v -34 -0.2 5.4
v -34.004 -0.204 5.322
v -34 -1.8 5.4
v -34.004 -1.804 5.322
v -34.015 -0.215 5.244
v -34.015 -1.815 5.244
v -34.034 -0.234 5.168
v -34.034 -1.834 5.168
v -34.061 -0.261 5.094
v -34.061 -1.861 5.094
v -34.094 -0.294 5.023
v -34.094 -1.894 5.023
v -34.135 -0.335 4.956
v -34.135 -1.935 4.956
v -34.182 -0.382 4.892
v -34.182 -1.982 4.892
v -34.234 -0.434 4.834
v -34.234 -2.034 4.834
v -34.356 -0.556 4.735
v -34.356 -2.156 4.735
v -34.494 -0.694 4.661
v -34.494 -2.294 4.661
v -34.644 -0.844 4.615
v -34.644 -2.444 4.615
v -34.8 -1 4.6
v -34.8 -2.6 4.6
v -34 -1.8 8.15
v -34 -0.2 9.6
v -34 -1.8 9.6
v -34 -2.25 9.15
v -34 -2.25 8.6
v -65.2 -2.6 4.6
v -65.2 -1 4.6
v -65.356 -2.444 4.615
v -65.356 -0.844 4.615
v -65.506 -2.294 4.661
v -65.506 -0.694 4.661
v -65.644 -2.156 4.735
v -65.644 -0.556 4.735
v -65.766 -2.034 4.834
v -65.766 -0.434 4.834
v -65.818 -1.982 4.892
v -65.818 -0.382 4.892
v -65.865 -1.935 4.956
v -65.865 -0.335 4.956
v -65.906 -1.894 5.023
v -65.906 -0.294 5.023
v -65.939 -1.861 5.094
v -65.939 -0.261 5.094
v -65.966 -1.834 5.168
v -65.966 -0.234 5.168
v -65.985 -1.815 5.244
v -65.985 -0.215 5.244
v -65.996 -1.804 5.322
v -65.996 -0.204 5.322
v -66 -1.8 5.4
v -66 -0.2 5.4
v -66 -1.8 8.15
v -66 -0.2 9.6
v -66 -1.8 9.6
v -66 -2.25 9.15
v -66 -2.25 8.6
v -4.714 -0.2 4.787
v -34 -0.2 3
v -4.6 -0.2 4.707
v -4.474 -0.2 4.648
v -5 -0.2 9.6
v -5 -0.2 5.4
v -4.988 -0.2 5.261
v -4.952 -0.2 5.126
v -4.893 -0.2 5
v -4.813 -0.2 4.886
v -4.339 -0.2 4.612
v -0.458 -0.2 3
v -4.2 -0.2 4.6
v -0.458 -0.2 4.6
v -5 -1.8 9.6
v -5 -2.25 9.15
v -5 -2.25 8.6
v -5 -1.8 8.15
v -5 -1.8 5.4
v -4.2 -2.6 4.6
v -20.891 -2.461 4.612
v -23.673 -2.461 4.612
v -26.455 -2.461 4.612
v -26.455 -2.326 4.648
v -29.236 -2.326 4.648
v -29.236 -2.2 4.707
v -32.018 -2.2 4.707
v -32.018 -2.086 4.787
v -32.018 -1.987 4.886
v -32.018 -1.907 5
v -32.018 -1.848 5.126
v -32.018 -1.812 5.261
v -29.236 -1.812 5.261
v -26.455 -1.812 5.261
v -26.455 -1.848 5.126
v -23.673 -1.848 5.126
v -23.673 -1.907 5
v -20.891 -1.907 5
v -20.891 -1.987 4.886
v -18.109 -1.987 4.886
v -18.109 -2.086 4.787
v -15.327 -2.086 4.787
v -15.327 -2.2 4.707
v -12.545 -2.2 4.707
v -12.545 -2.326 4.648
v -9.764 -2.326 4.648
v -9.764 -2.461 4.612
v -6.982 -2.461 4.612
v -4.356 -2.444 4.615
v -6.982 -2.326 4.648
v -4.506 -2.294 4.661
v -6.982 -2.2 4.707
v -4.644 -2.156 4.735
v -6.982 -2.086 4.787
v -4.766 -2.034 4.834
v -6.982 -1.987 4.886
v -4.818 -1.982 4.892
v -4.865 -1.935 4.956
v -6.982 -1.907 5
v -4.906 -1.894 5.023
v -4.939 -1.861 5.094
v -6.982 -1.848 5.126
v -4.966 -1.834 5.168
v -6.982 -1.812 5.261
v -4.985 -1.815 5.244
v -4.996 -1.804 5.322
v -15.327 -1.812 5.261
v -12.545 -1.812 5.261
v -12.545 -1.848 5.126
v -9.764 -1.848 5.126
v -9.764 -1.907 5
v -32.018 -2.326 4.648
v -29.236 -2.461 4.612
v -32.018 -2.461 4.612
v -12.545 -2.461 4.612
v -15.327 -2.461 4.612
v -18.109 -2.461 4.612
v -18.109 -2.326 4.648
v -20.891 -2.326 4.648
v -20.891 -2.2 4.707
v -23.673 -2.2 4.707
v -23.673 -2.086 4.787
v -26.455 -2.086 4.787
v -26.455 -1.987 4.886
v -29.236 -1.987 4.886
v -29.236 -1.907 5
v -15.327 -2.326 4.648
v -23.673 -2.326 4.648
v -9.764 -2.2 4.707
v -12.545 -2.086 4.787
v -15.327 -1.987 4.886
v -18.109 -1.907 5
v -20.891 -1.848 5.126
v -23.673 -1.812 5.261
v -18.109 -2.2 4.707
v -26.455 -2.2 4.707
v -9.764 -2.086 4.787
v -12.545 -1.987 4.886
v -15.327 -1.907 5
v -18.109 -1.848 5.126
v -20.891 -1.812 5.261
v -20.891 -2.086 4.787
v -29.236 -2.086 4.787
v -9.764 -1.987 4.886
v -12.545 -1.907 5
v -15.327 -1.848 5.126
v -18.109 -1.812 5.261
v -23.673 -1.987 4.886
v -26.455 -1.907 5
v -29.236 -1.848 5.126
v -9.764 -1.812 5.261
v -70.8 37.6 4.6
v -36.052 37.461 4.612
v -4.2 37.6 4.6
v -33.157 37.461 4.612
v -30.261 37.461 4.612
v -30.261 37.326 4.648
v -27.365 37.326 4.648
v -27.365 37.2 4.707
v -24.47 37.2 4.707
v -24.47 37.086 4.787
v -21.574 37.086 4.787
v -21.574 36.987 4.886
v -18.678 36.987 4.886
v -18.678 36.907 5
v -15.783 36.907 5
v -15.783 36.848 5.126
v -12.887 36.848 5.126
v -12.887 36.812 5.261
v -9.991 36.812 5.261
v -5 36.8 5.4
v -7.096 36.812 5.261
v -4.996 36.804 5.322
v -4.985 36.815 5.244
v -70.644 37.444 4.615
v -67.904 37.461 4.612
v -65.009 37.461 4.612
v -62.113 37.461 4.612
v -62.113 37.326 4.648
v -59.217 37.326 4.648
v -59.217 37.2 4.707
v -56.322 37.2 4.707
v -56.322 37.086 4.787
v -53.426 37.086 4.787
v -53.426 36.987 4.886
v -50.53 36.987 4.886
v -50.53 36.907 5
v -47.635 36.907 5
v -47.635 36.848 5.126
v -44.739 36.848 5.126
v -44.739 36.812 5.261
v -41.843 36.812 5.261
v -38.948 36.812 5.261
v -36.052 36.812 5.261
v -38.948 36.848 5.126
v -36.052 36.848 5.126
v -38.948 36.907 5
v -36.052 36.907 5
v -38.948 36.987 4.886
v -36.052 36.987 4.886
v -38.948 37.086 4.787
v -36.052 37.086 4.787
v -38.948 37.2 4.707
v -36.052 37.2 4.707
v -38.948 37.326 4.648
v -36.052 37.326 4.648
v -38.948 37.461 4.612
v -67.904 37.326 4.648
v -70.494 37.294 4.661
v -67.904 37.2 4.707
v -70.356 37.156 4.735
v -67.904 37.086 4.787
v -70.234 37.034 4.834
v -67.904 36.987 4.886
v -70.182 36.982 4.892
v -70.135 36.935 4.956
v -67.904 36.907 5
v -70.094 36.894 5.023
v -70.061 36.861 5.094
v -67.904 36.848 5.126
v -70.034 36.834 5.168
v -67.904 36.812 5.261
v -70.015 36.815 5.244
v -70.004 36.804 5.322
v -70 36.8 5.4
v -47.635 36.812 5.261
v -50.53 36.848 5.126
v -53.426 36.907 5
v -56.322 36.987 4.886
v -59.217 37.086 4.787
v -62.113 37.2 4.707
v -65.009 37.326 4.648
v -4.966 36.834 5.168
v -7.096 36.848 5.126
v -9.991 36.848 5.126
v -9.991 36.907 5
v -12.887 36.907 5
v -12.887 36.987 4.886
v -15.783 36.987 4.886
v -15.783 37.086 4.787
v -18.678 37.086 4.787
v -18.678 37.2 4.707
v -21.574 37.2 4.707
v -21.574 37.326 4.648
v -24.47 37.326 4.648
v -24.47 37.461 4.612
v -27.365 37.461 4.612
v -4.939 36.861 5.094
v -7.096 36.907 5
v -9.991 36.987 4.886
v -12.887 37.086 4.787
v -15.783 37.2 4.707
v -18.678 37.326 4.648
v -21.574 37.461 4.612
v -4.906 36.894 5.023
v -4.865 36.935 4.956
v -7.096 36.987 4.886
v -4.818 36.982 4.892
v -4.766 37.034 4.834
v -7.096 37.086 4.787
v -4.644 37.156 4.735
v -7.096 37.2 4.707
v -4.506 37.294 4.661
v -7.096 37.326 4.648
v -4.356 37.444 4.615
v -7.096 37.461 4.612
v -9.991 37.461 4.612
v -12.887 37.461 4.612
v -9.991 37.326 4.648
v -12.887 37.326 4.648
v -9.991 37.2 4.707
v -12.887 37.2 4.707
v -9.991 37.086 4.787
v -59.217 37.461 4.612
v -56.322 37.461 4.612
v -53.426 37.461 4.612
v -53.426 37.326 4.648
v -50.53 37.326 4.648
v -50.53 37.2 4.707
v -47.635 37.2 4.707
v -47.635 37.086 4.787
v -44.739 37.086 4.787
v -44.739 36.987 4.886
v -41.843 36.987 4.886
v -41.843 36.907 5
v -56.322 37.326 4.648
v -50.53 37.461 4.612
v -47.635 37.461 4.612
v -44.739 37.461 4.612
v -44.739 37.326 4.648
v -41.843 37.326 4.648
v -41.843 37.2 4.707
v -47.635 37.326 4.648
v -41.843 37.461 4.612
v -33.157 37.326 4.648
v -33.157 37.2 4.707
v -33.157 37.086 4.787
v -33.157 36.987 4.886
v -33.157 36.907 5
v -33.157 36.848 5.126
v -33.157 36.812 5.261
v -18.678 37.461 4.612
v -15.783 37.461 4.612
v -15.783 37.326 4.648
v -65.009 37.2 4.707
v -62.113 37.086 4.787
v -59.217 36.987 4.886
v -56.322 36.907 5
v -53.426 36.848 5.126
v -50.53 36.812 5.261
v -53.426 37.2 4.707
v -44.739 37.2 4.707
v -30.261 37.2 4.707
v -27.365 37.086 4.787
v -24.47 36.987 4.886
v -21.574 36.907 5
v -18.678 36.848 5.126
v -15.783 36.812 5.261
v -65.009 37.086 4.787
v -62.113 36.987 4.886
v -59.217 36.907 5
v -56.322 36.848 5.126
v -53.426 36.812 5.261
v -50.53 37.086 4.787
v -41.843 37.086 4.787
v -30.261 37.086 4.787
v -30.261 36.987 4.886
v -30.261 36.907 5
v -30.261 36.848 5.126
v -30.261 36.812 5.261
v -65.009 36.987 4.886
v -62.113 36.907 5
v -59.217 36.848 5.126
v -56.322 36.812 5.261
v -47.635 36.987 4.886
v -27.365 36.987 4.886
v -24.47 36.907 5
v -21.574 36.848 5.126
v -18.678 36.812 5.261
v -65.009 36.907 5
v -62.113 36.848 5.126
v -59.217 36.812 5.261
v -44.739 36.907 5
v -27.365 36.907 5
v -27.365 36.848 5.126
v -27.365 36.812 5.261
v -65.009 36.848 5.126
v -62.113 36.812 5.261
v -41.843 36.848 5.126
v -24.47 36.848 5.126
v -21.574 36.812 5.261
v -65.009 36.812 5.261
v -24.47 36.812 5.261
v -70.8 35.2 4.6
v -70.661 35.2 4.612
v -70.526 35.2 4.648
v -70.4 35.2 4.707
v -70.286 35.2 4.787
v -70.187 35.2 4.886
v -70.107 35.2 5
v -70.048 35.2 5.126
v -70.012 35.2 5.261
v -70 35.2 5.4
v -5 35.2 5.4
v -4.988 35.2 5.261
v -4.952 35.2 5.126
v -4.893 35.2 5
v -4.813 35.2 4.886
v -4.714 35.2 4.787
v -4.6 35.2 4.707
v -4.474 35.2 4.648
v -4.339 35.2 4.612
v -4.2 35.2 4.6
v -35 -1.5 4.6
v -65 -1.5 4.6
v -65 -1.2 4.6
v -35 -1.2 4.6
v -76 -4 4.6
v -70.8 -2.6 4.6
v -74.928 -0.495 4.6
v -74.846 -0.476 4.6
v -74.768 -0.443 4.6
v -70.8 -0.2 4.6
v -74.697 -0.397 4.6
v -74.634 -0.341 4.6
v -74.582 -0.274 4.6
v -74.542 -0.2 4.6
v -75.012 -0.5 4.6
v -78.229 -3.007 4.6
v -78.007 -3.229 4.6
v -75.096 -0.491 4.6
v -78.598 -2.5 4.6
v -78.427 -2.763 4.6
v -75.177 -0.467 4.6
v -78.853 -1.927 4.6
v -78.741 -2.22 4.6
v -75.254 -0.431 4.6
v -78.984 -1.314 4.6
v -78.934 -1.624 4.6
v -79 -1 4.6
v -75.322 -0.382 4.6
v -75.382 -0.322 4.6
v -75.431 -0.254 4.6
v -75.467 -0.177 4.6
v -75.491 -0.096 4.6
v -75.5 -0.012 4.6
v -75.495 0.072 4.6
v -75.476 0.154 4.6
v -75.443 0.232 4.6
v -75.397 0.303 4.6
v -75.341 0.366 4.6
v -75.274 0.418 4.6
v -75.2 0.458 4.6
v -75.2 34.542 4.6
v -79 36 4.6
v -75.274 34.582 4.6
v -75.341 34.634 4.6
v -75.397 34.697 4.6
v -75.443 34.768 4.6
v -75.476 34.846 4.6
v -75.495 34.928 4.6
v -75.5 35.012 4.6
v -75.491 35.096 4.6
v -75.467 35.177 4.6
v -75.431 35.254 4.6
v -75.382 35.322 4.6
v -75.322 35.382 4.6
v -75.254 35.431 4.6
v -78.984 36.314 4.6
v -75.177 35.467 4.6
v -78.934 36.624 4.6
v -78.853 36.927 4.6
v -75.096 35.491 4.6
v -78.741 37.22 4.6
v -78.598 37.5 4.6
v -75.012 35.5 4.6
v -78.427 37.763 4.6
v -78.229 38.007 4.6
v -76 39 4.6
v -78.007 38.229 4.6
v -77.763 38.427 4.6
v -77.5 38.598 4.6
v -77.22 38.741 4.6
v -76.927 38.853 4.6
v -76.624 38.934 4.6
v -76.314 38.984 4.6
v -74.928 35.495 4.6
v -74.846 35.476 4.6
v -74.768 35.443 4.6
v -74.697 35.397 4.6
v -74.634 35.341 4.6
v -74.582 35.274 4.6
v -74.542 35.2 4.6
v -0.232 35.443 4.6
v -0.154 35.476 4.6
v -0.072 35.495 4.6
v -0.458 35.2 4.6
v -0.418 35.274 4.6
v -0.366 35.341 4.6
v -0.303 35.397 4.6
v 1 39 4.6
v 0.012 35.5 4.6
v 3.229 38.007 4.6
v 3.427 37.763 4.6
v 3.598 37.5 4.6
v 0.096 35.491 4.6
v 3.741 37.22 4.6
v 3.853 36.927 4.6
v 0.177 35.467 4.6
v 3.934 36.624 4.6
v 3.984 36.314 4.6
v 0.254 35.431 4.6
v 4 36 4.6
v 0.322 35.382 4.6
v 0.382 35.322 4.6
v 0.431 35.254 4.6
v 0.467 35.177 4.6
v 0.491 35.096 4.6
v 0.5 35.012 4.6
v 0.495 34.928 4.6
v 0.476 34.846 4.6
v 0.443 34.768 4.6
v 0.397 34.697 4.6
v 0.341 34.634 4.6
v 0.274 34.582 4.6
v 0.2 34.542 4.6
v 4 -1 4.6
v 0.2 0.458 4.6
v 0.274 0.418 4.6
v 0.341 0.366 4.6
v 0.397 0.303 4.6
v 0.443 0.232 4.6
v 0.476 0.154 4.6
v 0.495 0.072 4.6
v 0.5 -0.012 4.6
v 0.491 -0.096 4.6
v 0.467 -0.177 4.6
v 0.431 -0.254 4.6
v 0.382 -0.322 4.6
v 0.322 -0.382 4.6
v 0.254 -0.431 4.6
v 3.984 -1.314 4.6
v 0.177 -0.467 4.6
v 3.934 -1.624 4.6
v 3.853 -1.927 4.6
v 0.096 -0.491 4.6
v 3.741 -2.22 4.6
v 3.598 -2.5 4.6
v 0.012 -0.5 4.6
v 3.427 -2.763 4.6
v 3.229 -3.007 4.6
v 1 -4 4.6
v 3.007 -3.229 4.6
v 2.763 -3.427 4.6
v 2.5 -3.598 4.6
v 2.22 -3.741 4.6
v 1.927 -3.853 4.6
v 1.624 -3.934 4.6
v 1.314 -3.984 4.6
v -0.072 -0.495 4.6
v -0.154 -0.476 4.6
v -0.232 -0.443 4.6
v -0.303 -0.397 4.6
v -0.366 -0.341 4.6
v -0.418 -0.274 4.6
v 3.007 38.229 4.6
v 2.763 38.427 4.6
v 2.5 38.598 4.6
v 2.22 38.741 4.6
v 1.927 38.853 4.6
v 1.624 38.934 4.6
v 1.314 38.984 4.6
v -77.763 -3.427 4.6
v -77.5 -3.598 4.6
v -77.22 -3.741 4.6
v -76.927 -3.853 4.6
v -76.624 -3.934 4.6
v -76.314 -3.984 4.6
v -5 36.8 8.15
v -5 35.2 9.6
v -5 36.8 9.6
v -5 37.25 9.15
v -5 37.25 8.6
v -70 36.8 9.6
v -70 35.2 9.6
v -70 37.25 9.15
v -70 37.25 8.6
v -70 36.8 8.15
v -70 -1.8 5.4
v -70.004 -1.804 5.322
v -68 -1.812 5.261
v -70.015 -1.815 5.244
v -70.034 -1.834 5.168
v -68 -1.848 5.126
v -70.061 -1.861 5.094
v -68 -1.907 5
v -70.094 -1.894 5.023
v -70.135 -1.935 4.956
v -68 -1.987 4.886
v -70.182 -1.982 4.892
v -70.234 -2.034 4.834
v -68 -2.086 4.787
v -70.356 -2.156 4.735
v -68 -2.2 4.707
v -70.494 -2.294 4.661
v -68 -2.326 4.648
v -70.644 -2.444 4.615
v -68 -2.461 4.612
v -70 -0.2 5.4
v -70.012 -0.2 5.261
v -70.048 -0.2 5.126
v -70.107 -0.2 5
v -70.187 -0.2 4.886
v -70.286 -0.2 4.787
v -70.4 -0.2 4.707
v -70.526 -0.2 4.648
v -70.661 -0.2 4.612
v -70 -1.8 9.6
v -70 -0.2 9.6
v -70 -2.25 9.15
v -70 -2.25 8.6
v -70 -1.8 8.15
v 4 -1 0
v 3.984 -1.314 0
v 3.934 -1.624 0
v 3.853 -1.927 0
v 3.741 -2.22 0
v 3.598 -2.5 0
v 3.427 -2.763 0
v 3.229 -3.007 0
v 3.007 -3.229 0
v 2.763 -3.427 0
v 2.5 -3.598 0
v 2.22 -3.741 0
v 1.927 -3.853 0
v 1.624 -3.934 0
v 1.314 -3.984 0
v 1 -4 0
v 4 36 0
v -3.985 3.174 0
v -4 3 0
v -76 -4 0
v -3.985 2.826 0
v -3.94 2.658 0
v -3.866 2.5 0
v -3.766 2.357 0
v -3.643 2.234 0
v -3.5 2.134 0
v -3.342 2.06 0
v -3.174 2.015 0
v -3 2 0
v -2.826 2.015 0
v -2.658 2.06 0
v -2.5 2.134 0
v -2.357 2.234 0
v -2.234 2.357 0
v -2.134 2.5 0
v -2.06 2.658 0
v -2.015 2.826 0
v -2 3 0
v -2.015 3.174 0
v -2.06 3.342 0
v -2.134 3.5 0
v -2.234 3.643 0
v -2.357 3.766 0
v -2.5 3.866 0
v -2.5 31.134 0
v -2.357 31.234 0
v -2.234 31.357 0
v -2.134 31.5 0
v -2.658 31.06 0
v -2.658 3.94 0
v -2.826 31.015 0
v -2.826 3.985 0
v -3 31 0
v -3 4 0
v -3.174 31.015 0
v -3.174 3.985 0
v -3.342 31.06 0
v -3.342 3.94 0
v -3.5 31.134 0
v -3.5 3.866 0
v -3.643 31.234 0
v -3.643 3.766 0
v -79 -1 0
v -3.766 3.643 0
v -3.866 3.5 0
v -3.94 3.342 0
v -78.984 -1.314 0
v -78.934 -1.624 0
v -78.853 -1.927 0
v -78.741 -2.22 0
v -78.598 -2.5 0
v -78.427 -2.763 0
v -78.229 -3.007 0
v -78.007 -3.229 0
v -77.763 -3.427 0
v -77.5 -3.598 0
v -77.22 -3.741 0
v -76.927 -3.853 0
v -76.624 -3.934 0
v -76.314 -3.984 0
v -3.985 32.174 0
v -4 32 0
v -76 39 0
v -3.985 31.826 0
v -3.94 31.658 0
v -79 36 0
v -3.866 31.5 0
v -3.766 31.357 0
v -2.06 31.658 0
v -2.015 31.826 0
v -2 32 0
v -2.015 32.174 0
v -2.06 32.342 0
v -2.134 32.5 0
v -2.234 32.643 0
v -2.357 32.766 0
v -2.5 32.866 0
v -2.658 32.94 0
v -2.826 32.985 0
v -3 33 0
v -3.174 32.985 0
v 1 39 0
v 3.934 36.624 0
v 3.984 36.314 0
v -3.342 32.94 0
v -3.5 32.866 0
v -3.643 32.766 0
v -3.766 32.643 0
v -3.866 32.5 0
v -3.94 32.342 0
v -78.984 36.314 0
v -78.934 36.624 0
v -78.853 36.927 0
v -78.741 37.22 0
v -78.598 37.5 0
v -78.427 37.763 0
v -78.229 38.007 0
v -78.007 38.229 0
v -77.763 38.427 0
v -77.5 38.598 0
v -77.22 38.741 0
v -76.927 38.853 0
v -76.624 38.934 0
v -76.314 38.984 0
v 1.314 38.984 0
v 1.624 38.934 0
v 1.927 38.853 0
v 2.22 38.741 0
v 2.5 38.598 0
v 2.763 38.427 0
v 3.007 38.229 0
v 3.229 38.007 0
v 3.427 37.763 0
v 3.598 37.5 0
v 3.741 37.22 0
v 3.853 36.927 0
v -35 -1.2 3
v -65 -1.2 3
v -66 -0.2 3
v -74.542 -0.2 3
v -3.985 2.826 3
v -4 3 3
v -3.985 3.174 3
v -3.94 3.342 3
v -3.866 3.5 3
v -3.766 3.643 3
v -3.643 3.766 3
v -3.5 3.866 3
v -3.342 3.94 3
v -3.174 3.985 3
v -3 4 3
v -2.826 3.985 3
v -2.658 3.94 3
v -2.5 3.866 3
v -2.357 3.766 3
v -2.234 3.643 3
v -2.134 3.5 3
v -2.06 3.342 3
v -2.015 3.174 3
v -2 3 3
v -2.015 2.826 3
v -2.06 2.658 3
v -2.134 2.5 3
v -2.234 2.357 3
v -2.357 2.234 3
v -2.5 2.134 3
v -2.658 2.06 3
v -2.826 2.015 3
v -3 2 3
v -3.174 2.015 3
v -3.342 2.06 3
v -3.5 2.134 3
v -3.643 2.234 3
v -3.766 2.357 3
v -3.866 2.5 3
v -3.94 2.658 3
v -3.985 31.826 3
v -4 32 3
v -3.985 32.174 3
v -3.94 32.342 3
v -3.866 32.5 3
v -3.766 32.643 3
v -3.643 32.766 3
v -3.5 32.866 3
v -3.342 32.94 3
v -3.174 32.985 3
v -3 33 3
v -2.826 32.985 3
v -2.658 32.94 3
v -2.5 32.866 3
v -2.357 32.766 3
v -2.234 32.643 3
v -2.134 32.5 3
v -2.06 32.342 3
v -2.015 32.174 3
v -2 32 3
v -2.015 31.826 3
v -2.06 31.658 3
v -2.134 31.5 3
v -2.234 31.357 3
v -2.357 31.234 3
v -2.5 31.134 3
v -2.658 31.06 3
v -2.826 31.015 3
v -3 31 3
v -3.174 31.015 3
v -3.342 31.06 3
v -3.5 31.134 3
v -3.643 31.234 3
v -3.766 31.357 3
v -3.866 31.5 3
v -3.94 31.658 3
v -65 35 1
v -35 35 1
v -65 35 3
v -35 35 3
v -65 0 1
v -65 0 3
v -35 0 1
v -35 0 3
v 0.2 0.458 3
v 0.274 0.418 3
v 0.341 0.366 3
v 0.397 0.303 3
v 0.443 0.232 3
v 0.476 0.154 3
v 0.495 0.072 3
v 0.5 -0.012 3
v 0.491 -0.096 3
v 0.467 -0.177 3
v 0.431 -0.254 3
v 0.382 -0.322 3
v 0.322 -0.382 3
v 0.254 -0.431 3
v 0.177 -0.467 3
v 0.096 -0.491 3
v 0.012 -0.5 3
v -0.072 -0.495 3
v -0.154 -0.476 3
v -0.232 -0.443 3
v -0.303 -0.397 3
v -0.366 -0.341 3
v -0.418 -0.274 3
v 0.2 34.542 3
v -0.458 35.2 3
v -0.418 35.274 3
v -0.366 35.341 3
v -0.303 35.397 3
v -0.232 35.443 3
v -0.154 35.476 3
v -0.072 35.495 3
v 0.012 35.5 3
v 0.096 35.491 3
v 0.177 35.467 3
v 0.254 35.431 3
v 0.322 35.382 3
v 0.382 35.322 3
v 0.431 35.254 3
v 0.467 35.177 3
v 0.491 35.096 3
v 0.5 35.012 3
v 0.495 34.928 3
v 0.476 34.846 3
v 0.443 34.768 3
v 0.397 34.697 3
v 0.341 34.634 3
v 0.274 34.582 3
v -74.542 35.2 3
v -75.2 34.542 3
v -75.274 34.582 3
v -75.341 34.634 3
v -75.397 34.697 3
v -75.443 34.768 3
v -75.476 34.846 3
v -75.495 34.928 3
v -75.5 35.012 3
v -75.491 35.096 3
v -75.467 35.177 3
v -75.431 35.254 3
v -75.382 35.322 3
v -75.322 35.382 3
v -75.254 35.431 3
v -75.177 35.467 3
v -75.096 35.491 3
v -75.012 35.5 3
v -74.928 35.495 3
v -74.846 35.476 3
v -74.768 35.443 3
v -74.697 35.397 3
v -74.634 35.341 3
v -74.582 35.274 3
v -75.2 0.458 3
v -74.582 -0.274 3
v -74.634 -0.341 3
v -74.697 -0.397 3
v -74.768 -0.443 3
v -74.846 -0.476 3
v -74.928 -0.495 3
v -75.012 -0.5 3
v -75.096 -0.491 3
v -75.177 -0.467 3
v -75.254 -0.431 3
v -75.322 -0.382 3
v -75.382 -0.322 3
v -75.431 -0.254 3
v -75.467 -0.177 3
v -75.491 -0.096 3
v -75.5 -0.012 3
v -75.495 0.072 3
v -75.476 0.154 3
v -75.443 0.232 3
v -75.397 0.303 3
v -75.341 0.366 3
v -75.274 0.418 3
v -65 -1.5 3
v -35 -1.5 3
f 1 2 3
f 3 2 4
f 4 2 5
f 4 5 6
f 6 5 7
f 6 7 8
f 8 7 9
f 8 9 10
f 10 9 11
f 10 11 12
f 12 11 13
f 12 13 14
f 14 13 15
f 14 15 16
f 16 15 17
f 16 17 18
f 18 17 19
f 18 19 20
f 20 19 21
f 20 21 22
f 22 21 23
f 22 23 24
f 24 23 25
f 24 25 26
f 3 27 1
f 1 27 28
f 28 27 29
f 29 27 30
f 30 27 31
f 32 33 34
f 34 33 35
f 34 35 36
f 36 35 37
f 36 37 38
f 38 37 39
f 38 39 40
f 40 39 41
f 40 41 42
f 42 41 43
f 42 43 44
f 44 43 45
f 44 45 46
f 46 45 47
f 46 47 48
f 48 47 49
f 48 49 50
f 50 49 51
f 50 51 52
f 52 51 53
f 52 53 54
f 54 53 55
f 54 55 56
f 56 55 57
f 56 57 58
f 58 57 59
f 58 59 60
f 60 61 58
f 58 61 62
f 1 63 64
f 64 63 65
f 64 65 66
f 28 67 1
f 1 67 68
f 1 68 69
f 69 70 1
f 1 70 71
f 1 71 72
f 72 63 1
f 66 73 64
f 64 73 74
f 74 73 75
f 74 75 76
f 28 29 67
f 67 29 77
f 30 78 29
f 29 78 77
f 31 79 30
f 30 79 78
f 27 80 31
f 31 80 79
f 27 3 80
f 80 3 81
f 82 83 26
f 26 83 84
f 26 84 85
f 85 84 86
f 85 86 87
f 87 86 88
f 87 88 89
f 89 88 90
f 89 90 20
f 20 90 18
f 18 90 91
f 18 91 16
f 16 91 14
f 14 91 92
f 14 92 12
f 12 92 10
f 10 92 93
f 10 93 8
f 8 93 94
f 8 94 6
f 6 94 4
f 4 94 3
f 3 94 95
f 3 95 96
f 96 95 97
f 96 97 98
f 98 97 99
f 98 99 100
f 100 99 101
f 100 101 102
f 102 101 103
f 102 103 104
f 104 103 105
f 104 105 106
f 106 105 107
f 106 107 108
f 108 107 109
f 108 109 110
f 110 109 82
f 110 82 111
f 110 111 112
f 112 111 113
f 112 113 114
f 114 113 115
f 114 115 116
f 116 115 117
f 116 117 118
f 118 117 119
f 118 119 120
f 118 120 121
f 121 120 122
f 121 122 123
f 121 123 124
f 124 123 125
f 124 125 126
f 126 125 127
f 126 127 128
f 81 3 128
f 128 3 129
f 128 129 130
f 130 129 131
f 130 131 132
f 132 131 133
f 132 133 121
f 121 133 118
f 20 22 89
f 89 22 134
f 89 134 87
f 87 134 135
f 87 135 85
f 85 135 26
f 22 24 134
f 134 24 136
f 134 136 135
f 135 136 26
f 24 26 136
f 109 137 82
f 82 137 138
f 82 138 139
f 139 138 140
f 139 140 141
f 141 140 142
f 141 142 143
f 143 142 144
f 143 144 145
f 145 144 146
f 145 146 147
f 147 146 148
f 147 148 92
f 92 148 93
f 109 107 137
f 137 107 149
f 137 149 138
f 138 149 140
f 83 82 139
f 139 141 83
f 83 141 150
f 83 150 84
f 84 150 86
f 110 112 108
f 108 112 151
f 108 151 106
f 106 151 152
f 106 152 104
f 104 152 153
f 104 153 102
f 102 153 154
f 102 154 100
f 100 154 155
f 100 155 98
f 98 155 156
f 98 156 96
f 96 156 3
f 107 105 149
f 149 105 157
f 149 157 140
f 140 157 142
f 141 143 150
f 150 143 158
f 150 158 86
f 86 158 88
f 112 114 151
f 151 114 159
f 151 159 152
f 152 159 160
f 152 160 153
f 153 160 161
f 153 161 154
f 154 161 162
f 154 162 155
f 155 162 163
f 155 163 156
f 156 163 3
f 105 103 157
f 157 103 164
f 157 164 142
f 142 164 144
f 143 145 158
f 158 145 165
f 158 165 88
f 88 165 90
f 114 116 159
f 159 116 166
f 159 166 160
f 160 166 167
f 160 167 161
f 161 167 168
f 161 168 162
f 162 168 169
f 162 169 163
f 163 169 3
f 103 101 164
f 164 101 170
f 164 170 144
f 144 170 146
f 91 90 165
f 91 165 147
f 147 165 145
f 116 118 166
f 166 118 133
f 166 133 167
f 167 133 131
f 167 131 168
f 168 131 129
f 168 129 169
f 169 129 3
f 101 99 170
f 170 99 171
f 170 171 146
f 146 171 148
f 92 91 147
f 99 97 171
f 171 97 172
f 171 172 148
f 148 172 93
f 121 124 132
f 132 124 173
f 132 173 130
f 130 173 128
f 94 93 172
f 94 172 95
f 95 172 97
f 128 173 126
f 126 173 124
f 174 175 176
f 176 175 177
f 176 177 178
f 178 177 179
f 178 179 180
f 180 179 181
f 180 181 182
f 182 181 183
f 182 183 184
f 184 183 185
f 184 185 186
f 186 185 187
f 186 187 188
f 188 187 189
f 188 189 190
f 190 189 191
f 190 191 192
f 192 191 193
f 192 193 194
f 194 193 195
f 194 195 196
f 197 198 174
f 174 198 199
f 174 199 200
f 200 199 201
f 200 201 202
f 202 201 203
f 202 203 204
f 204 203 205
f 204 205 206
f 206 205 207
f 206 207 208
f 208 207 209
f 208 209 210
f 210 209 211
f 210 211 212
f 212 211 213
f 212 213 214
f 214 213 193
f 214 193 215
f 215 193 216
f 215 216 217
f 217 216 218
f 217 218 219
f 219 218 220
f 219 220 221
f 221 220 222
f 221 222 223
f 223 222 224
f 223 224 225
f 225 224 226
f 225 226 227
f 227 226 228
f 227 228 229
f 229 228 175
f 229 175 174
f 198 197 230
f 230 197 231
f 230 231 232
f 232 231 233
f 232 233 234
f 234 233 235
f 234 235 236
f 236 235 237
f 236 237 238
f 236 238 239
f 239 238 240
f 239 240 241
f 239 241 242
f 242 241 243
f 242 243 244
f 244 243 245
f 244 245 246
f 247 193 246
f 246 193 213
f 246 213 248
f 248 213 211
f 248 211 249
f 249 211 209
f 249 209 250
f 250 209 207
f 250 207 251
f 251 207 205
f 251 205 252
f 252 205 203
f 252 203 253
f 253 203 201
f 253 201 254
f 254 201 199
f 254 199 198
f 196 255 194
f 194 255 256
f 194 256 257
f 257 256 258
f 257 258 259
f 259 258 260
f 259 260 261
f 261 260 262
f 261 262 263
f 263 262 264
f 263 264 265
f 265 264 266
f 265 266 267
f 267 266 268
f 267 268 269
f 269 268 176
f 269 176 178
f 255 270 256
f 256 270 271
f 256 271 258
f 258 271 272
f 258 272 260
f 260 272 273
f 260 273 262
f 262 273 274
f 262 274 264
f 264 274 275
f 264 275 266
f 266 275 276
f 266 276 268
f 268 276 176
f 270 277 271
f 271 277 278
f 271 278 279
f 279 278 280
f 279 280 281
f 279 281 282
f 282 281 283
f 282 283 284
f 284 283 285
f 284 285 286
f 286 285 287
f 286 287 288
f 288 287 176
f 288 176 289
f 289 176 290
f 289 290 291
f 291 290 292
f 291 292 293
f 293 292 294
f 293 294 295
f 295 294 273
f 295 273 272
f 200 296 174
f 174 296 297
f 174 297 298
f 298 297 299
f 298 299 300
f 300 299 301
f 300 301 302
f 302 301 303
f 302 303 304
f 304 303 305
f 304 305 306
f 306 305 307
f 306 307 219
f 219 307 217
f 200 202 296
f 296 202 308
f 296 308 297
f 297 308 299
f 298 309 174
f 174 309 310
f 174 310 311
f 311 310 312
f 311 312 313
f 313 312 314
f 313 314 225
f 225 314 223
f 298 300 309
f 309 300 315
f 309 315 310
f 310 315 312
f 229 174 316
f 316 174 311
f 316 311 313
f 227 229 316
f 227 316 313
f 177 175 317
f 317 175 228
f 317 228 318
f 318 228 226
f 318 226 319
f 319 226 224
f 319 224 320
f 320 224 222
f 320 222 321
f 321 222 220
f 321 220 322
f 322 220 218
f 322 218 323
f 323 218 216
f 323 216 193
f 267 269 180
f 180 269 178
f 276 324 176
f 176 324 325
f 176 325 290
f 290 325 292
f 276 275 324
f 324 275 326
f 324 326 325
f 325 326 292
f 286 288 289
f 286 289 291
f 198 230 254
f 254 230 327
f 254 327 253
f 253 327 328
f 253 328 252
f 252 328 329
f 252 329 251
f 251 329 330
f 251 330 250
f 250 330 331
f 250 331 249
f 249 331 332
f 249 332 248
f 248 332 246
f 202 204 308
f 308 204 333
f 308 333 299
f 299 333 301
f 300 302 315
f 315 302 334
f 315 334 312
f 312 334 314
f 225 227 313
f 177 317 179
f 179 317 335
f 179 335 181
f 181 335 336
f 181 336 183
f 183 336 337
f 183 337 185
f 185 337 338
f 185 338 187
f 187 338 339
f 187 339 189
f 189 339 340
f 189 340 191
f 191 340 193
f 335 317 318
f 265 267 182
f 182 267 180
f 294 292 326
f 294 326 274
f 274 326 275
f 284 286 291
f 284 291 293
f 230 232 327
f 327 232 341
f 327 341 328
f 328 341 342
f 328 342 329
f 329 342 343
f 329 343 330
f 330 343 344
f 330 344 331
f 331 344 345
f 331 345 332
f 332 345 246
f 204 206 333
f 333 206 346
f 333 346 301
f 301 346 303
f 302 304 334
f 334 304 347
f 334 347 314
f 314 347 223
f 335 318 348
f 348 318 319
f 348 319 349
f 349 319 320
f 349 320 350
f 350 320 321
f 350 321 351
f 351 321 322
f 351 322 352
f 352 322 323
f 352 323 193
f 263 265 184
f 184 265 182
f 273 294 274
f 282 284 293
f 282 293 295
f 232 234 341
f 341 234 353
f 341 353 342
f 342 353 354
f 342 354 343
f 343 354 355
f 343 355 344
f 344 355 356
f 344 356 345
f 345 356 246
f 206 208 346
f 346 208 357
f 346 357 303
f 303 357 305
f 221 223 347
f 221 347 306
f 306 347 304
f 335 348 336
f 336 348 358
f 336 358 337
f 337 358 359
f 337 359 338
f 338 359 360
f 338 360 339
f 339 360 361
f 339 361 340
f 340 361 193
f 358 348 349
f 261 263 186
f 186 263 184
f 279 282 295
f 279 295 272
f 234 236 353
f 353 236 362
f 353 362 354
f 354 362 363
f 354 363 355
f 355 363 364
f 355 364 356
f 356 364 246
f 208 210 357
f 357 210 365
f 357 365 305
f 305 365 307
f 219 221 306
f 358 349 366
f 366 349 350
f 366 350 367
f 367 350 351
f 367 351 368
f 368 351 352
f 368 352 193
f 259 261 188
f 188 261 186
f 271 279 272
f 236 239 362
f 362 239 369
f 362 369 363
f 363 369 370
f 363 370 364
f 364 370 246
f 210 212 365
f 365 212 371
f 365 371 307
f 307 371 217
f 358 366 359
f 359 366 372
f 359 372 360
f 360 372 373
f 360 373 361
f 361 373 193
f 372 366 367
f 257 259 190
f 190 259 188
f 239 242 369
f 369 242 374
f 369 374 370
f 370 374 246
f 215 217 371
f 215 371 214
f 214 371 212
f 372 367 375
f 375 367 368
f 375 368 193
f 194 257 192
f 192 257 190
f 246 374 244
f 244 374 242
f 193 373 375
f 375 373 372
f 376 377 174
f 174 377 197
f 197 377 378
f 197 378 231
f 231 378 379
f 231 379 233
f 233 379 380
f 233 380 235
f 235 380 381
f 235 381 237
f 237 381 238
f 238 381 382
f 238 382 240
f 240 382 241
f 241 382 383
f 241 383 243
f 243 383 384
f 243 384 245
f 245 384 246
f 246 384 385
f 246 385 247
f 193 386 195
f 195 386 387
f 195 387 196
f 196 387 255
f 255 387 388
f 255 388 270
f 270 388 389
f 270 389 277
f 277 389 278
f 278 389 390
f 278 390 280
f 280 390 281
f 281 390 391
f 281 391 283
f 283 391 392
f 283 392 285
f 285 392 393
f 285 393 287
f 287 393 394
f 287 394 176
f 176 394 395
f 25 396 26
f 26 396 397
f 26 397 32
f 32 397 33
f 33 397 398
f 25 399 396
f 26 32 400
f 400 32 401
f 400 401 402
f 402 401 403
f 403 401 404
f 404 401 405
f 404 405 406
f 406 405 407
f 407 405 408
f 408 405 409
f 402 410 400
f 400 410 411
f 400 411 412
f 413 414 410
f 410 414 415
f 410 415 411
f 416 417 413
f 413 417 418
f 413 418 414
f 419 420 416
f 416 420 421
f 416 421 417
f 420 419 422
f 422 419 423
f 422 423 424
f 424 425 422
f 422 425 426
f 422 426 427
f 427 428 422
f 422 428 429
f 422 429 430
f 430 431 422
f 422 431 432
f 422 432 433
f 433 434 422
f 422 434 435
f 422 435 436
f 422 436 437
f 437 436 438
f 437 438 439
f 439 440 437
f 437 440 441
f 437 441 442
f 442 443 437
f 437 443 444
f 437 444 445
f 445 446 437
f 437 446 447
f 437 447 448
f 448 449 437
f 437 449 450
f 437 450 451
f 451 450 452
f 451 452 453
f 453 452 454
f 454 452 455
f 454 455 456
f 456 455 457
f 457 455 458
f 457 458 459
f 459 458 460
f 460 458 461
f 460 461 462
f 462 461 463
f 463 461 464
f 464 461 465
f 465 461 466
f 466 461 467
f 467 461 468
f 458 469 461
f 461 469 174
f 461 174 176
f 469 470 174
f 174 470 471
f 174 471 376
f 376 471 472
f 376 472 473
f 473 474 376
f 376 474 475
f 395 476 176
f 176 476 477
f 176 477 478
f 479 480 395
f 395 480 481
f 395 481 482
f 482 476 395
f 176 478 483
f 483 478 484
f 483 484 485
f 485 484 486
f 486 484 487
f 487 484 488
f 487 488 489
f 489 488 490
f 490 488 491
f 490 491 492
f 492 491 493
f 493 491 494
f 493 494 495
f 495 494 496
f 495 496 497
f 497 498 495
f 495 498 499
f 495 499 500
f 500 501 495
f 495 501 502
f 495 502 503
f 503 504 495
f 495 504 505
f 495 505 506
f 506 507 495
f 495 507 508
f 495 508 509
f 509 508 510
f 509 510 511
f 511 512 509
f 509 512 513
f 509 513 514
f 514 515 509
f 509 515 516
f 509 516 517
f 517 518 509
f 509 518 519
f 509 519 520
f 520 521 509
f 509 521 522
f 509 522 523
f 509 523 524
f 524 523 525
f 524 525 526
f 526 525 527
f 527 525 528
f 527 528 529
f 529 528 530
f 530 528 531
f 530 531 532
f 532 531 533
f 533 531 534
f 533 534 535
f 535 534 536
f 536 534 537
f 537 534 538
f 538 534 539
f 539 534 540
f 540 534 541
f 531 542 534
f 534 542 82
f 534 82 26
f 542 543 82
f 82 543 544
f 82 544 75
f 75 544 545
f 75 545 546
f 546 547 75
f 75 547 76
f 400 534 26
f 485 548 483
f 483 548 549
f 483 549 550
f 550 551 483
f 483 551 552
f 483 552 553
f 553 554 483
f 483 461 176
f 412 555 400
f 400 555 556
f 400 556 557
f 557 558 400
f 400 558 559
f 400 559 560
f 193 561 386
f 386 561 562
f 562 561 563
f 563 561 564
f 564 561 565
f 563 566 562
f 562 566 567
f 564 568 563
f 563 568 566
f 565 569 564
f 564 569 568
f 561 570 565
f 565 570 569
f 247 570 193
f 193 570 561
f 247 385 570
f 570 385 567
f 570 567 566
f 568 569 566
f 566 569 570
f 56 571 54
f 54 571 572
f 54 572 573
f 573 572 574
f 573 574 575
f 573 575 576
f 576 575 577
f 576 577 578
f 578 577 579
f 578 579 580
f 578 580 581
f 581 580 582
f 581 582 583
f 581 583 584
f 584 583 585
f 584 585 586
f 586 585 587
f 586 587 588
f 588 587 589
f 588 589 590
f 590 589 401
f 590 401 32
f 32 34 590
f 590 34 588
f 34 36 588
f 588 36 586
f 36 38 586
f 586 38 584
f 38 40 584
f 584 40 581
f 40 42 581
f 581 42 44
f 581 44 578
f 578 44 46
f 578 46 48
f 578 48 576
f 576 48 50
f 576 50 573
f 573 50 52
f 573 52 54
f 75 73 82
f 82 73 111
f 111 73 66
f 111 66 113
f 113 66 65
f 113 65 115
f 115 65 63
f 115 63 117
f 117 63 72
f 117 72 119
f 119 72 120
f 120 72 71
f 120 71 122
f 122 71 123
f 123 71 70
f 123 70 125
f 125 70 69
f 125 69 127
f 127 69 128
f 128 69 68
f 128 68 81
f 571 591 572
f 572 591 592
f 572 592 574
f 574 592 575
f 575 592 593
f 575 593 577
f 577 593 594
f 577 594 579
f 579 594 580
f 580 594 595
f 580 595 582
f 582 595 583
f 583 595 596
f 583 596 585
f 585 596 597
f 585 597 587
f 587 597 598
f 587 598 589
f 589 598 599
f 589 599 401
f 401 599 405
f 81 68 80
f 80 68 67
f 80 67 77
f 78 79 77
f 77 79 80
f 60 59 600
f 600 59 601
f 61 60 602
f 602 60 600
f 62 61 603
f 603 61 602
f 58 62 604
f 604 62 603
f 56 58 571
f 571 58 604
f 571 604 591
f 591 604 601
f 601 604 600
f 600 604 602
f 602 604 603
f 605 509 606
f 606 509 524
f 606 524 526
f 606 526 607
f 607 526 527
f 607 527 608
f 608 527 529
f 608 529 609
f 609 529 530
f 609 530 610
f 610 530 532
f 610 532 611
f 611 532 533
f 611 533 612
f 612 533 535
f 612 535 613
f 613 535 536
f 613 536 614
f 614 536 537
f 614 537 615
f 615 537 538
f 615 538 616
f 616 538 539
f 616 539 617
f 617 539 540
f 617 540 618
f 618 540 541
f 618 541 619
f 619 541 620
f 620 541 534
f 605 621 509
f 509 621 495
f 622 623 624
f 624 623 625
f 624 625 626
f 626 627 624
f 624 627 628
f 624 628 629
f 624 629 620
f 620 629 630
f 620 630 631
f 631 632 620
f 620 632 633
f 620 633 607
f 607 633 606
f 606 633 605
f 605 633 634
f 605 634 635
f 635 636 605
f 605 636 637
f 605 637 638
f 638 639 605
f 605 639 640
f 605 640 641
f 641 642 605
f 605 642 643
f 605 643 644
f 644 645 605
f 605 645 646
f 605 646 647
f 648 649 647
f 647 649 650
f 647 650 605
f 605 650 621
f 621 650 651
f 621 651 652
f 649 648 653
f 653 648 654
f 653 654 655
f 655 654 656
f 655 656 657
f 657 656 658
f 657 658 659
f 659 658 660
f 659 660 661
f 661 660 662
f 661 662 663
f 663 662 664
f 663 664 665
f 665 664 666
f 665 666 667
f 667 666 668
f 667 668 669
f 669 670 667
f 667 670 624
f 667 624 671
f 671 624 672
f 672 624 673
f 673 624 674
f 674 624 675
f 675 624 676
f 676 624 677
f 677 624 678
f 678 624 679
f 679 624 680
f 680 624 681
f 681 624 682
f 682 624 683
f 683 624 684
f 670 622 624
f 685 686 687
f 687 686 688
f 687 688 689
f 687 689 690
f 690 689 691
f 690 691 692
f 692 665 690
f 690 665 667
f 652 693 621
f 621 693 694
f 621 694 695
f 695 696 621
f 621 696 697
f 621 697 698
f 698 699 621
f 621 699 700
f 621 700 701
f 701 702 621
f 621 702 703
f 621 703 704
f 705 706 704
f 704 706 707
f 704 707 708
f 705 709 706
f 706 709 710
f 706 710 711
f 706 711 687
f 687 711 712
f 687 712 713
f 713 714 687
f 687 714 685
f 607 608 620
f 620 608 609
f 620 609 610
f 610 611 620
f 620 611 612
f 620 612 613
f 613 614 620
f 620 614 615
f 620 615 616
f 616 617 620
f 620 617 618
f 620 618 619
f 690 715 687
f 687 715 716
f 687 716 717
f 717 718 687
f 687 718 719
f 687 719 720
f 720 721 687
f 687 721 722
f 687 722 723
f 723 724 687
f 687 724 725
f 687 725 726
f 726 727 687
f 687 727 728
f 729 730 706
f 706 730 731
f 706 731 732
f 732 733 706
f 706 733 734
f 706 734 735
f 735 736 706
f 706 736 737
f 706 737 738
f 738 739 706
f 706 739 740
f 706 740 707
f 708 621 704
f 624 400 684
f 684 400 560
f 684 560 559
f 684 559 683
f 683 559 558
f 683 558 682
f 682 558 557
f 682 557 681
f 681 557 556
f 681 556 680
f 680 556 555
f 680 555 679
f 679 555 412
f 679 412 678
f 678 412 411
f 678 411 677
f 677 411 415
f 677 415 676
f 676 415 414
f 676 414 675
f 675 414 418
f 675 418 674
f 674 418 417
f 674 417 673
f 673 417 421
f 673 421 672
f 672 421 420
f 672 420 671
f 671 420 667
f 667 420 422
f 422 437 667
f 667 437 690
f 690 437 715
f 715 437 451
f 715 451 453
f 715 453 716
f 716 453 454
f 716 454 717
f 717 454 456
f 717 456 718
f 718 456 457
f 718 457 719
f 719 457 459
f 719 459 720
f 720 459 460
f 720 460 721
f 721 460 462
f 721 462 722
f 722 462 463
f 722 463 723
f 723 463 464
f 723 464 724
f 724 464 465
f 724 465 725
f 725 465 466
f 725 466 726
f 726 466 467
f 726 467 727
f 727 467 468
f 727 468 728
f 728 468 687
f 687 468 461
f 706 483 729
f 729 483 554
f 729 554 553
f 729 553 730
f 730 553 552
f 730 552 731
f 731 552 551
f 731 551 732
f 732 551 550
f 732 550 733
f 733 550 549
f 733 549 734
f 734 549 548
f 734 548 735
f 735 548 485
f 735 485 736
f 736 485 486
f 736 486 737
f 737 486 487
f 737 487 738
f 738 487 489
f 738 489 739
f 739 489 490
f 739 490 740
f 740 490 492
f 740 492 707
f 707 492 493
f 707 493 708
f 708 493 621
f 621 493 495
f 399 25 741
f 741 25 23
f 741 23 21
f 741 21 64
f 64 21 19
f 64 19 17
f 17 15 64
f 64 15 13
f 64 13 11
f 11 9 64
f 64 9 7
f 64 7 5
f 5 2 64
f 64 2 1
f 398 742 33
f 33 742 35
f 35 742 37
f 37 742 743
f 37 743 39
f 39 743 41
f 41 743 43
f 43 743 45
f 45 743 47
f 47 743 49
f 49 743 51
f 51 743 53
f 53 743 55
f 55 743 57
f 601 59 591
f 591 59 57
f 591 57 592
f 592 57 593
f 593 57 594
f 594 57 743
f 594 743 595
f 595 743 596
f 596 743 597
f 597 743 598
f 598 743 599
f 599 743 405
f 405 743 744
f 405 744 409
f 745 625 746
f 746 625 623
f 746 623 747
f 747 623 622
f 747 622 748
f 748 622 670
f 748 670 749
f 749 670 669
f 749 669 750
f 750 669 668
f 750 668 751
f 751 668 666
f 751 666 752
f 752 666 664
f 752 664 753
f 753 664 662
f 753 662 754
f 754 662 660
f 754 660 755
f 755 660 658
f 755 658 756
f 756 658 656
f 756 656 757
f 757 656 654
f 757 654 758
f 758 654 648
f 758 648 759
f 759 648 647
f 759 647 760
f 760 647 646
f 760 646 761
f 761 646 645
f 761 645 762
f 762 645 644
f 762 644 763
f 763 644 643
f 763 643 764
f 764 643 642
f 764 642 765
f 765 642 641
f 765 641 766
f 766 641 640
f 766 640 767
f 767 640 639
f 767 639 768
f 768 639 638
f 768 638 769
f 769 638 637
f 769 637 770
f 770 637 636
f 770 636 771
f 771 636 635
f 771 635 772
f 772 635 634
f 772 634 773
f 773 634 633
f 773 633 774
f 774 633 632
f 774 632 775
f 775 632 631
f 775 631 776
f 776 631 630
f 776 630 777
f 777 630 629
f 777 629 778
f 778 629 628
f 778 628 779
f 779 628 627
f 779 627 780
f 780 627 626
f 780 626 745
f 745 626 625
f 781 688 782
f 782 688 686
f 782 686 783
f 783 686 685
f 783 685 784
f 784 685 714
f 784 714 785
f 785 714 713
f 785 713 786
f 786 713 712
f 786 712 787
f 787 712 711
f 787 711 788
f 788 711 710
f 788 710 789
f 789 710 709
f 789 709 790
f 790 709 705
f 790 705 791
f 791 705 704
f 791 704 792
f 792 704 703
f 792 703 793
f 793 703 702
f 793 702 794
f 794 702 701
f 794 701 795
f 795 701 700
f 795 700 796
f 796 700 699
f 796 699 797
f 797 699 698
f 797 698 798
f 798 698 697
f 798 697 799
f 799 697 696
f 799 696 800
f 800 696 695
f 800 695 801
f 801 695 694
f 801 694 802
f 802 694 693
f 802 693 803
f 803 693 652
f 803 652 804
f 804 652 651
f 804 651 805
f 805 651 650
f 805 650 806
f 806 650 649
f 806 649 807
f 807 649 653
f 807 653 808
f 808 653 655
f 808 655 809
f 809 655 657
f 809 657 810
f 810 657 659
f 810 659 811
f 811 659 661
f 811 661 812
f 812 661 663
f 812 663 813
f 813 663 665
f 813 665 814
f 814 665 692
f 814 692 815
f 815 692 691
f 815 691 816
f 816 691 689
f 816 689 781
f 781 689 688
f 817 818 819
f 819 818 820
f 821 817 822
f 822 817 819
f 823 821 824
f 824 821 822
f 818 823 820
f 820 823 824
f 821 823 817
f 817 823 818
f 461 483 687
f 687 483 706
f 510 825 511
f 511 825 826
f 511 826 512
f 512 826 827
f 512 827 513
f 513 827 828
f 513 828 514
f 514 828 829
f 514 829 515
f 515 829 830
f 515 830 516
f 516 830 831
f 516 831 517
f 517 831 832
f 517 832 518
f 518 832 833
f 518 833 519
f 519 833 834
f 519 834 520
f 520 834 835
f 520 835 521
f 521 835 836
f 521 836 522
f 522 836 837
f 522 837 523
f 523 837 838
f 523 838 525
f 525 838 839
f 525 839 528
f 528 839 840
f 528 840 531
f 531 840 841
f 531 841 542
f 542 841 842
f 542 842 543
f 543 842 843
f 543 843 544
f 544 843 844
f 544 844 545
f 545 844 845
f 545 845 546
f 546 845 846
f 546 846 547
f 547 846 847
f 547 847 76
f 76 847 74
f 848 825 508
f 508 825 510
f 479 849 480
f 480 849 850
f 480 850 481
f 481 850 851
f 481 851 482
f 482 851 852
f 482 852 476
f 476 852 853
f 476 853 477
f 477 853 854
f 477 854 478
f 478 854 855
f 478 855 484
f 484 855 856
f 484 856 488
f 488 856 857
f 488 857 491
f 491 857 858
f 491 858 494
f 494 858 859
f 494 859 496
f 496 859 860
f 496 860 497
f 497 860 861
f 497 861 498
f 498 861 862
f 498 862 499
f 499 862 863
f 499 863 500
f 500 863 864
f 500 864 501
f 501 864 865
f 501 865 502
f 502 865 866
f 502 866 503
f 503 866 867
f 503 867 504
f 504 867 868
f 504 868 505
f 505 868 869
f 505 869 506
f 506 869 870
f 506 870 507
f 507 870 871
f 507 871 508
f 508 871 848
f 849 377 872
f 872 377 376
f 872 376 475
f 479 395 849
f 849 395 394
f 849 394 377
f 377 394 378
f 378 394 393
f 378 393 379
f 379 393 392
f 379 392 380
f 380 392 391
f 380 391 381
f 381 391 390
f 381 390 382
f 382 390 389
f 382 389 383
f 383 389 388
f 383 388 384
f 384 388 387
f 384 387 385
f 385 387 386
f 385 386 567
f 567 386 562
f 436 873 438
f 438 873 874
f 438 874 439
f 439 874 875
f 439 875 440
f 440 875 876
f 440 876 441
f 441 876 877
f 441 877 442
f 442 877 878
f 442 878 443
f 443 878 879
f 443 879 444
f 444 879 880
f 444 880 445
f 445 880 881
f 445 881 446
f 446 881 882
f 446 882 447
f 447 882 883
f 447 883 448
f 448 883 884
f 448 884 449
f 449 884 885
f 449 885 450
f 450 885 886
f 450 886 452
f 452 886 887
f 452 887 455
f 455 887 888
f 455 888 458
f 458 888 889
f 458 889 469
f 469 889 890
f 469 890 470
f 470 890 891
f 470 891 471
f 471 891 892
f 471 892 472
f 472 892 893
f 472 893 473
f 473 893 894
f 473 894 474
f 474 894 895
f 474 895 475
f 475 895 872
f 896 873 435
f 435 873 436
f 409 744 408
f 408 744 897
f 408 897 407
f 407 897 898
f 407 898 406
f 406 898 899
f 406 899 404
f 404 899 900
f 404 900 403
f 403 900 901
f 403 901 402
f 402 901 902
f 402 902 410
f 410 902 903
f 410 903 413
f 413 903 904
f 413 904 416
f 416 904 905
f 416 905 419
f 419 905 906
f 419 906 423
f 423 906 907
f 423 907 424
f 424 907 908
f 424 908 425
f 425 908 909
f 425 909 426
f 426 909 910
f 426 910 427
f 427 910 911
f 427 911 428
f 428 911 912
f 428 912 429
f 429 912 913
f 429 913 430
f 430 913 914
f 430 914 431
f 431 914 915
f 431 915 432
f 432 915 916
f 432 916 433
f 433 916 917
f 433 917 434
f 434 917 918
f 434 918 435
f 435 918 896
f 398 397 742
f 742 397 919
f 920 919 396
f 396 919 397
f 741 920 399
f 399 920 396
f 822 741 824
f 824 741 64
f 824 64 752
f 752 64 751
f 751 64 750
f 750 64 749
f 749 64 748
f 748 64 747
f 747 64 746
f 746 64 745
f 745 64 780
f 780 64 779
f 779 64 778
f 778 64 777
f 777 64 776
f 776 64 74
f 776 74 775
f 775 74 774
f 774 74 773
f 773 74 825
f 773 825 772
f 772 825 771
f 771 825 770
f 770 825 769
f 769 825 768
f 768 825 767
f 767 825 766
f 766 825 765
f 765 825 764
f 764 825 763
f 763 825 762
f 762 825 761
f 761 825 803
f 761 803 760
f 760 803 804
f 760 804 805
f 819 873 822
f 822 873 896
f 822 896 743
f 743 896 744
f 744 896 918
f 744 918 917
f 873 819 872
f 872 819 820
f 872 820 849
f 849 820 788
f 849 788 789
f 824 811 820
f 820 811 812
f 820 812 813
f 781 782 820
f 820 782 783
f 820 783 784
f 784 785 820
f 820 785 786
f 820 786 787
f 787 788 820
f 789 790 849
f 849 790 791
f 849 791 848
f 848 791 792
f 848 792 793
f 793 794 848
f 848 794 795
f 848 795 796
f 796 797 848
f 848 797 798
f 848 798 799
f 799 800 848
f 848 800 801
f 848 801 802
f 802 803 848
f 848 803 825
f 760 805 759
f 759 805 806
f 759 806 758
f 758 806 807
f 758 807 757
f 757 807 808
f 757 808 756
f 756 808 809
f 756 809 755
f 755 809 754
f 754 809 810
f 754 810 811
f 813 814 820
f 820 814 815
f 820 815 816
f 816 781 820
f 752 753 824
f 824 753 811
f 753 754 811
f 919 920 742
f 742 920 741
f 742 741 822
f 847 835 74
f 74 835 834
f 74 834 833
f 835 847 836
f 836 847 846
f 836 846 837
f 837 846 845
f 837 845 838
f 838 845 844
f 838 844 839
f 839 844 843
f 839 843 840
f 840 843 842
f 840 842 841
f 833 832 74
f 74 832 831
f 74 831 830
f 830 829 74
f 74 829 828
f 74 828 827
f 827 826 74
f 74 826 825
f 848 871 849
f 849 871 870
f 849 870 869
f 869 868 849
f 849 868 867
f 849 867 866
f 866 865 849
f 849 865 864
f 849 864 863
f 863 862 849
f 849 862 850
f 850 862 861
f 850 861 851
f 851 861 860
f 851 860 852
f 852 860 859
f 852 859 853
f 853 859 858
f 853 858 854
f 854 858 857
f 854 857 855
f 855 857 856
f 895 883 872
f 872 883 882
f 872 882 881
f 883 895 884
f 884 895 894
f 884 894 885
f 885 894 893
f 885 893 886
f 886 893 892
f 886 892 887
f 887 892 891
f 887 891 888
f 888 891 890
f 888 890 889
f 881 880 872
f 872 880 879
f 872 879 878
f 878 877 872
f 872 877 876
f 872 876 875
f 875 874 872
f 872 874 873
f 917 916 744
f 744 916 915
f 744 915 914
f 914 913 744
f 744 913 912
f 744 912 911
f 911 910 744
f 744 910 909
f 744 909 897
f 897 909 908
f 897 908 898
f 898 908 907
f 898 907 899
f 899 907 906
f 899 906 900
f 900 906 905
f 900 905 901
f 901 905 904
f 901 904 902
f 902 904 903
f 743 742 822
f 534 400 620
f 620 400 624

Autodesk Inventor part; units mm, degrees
ref_plane "YZ Plane" through (0, 0, 0) normal (1, 0, 0) x (0, 1, 0)
sketch "Sketch1" plane through (0, 0, 0) normal (0, 0, 1) x (1, 0, 0)
  line L0 (0, 0) -> (-75, 0)
  line L1 (-75, 0) -> (-75, 35)
  line L2 (-75, 35) -> (0, 35)
  line L3 (0, 35) -> (0, 0)
  line L4 (4, -4) -> (-79, -4)
  line L5 (-79, -4) -> (-79, 39)
  line L6 (-79, 39) -> (4, 39)
  line L7 (4, 39) -> (4, -4)
  line L8 (-37.5, 39) -> (-37.5, 56.2273) construction
  line L9 (-79, 17.5) -> (-92.6498, 17.5) construction
  line L10 (-65, 0) -> (-65, 35)
  line L11 (-35, 0) -> (-35, 35)
  circle A0 centre (-3, 32) radius 1
  circle A1 centre (-3, 3) radius 1
  line L12 (-3, 3) -> (-3, 32) construction
  line L13 (-3, 17.5) -> (-10.1857, 17.5) construction
  circle A2 centre (-75, 35) radius 0.5
  circle A3 centre (0, 35) radius 0.5
  circle A4 centre (-75, 0) radius 0.5
  circle A5 centre (0, 0) radius 0.5
  line L14 (-75.2, 35.2) -> (-75.2, -0.2)
  line L15 (-75.2, -0.2) -> (0.2, -0.2)
  line L16 (0.2, -0.2) -> (0.2, 35.2)
  line L17 (0.2, 35.2) -> (-75.2, 35.2)
  line L18 (-65, 0) -> (-65, -1.5)
  line L19 (-65, -1.5) -> (-35, -1.5)
  line L20 (-35, -1.5) -> (-35, 0)
  point P0 (-0.5, 35)
  point P1 (0, 34.5)
  point P2 (0, 0.5)
  point P3 (-0.5, 0)
  point P4 (-75, 0.5)
  point P5 (-74.5, 0)
  point P6 (-74.5, 35)
  point P7 (-75, 34.5)
  point P8 (0.2, 0.4583)
  point P9 (0.2, 34.5417)
  point P10 (-0.4583, 35.2)
  point P11 (-74.5417, 35.2)
  point P12 (-74.5417, -0.2)
  point P13 (-0.4583, -0.2)
  point P14 (-75.2, 34.5417)
  point P15 (-75.2, 0.4583)
  point P16 (-35, -0.2)
  point P17 (-65, -0.2)
  dimension "d0" = 75
  dimension "d1" = 35
  dimension "d2" = 4
  dimension "d8" = 10
  dimension "d9" = 40
  dimension "d10" = 2
  dimension "d11" = 2
  dimension "d12" = 29
  dimension "d13" = 3
  dimension "d18" = 1
  dimension "d21" = 75
  dimension "d24" = 35
  dimension "d32" = 0.2
  dimension "d33" = 1.5
extrude "Extrusion1" add sketch "Sketch1" along normal blind 4.6 contours L20 L15 L18 L0 | L11 L2 A3 L3 A5 L0 | L0 L10 L2 L11 | L0 A5 L15 L20 | L18 L15 A4 L0 | L0 A4 L1 A2 L2 L10 | A5 L3 L0 | L0 L3 A5 L16 L15 | L2 A2 L17 A3 | L20 L19 L18 L15 | A4 L15 L14 L1 L0 | L0 L1 A4 | L3 A3 L16 A5 | L15 L16 A5 | A3 L17 L16 L3 L2 | L2 L3 A3 | A4 L14 A2 L1 | A4 L14 L15 | A2 L1 L2 | L2 L1 A2 L14 L17 | A3 L16 L17 | L17 L14 A2 | L4 L5 L6 L7 | A0 | A1
extrude "Extrusion2" cut sketch "Sketch1" against normal blind 1.6 from surface at 4.6 contours L20 L15 L18 L0 | L11 L2 A3 L3 A5 L0 | L0 L10 L2 L11 | L0 A5 L15 L20 | L18 L15 A4 L0 | L0 A4 L1 A2 L2 L10 | A5 L3 L0 | L0 L3 A5 L16 L15 | L2 A2 L17 A3 | L20 L19 L18 L15 | A4 L15 L14 L1 L0 | L0 L1 A4 | L3 A3 L16 A5 | L15 L16 A5 | A3 L17 L16 L3 L2 | L2 L3 A3 | A4 L14 A2 L1 | A4 L14 L15 | A2 L1 L2 | L2 L1 A2 L14 L17 | A3 L16 L17 | L17 L14 A2 | A0 | A1
extrude "Extrusion3" cut sketch "Sketch1" against normal blind 2 from surface at 3 contours L0 L10 L2 L11
extrude "Extrusion4" cut sketch "Sketch1" against normal blind 3 from surface at 3 contours A0 | A1
chamfer "Chamfer2" distance 1 angle 45 2 edges at (-65, -0.2, 3.8) (-35, -0.2, 3.8)
fillet "Fillet1" radius 3 4 edges at (4, 39, 2.3) (-79, 39, 2.3) (-79, -4, 2.3) (4, -4, 2.3)
ref_plane "Work Plane1" through (-37.5, -1, 0) normal (1, 0, 0) x (0, 0, -1)
sketch "Sketch2" plane through (-37.5, -1, 0) normal (1, 0, 0) x (0, 0, -1)
  line L0 (-1, 1) -> (-3, 1) projected
  line L1 (-3, 1) -> (-4.6, 1)
  line L2 (-4.6, -3) -> (-4.6, 0) projected
  line L3 (-4.6, -0.8) -> (-4.6, 0.8)
  line L4 (-9.6, 0.8) -> (-9.6, -0.8)
  line L5 (-9.6, -0.8) -> (-4.6, -0.8)
  line L6 (-9.6, -0.8) -> (-9.6, -1.25)
  line L7 (-9.6, -1.25) -> (-8.6, -1.25)
  line L8 (-8.6, -1.25) -> (-8.15, -0.8)
  line L9 (-9.6, -0.8) -> (-9.15, -1.25)
  line L10 (-9.6, 0.8) -> (-4.6, 0.8)
  line L11 (-3, 0.8) -> (-4.6, 0.8) projected
  point P0 (0, 1)
  point P1 (-4.6, 1)
  point P2 (-4.6, -0.2)
  dimension "d41" = 1.6
  dimension "d42" = 0.45
  dimension "d45" = 45
  dimension "d46" = 45
  dimension "d47" = 1
  dimension "d51" = 5
ref_plane "Work Plane2" through (-67.5, -1, 0) normal (1, 0, 0) x (0, 0, -1)
extrude "Extrusion5" add sketch "Sketch2" against normal blind 32.5 and the other way blind 3.5 contours L5 L4 L10 L3 L2 | L8 L7 L9 L5
ref_plane "Work Plane3" through (-76, 17.5, 0) normal (0, 1, 0) x (1, 0, 0)
mirror "Mirror1" about plane through (-37.5, -1, 0) normal (1, 0, 0) of "Extrusion5"
fillet "Fillet4" radius 0.8 3 edges at (-37.5, -1.8, 4.6) (-5, -1, 4.6) (-70, -1, 4.6)
mirror "Mirror2" about plane through (-76, 17.5, 0) normal (0, 1, 0) of "Extrusion5", "Mirror1", "Fillet4"
sketch "Sketch7" plane through (0, 0, 4.6) normal (0, 0, 1) x (1, 0, 0)
  line L0 (-66, -0.2) -> (-66, -4)
  line L1 (-66, -4) -> (-34, -4)
  line L2 (-76, -4) -> (1, -4) projected
  line L3 (-34, -0.2) -> (-35, -1.2) projected
  line L4 (-34, -0.2) -> (-34, -4)
  line L5 (-66, -0.2) -> (-34, -0.2)
  point P0 (0, 0)
extrude "Extrusion10" cut sketch "Sketch7" along normal through all
fillet "Fillet5" radius 0.8 2 edges at (-66, -1.4, 4.6) (-34, -1.4, 4.6)
sketch "Sketch3" plane through (4, -1, 4.6) normal (1, 0, 0) x (0, 0, -1)
  line L0 (-8.3163, -11.6343) -> (11.7066, -11.6343)
  line L1 (11.7066, -11.6343) -> (11.7066, 46.4717)
  line L2 (11.7066, 46.4717) -> (-8.3163, 46.4717)
  line L3 (-8.3163, 46.4717) -> (-8.3163, -11.6343)
  point P0 (4.6, 1)
sketch "Sketch4" plane through (-74.5417, 35.2, 3) normal (0, 0, 1) x (1, 0, 0)
  line L0 (-6.3289, -41.6688) -> (13.4056, -41.6688)
  line L1 (13.4056, -41.6688) -> (13.4056, 7.8526)
  line L2 (13.4056, 7.8526) -> (-6.3289, 7.8526)
  line L3 (-6.3289, 7.8526) -> (-6.3289, -41.6688)
  point P0 (74.5417, -35.2)
sketch "Sketch5" plane through (-74.5417, 35.2, 4.6) normal (0, 0, -1) x (-1, 0, 0)
  line L0 (-3.0733, -37.6) -> (-8.5102, -37.6) projected
  line L1 (-3.6554, 1.6179) -> (-3.0733, 2.2) projected
  line L2 (-8.5102, -37.6) -> (-3.0733, -37.6)
  line L3 (-3.0733, -37.6) -> (-3.0733, 2.2)
  line L4 (-3.0733, 2.2) -> (-8.5102, 2.2)
  line L5 (-8.5102, 2.2) -> (-8.5102, -37.6)
  point P0 (-74.5417, -35.2)
sketch "Sketch6" plane through (-74.5417, 35.2, 4.6) normal (0, 0, 1) x (1, 0, 0)
  line L0 (3.0733, -37.6) -> (3.0733, 2.2) projected
  line L1 (8.5102, 2.2) -> (8.5102, -37.6) projected
  line L2 (3.0733, 0.0729) -> (8.5102, 0.0729)
  line L3 (8.5102, 0.0729) -> (8.5102, -35.4359)
  line L4 (8.5102, -35.4359) -> (3.0733, -35.4359)
  line L5 (3.0733, -35.4359) -> (3.0733, 0.0729)
  point P0 (74.5417, -35.2)
  point P1 (3.0733, -35.4359)
equation "\"d11\" = d10"
equation "\"d21\" = d0"
equation "\"d24\" = d1"
properties part number "scatola_v2_sotto"
